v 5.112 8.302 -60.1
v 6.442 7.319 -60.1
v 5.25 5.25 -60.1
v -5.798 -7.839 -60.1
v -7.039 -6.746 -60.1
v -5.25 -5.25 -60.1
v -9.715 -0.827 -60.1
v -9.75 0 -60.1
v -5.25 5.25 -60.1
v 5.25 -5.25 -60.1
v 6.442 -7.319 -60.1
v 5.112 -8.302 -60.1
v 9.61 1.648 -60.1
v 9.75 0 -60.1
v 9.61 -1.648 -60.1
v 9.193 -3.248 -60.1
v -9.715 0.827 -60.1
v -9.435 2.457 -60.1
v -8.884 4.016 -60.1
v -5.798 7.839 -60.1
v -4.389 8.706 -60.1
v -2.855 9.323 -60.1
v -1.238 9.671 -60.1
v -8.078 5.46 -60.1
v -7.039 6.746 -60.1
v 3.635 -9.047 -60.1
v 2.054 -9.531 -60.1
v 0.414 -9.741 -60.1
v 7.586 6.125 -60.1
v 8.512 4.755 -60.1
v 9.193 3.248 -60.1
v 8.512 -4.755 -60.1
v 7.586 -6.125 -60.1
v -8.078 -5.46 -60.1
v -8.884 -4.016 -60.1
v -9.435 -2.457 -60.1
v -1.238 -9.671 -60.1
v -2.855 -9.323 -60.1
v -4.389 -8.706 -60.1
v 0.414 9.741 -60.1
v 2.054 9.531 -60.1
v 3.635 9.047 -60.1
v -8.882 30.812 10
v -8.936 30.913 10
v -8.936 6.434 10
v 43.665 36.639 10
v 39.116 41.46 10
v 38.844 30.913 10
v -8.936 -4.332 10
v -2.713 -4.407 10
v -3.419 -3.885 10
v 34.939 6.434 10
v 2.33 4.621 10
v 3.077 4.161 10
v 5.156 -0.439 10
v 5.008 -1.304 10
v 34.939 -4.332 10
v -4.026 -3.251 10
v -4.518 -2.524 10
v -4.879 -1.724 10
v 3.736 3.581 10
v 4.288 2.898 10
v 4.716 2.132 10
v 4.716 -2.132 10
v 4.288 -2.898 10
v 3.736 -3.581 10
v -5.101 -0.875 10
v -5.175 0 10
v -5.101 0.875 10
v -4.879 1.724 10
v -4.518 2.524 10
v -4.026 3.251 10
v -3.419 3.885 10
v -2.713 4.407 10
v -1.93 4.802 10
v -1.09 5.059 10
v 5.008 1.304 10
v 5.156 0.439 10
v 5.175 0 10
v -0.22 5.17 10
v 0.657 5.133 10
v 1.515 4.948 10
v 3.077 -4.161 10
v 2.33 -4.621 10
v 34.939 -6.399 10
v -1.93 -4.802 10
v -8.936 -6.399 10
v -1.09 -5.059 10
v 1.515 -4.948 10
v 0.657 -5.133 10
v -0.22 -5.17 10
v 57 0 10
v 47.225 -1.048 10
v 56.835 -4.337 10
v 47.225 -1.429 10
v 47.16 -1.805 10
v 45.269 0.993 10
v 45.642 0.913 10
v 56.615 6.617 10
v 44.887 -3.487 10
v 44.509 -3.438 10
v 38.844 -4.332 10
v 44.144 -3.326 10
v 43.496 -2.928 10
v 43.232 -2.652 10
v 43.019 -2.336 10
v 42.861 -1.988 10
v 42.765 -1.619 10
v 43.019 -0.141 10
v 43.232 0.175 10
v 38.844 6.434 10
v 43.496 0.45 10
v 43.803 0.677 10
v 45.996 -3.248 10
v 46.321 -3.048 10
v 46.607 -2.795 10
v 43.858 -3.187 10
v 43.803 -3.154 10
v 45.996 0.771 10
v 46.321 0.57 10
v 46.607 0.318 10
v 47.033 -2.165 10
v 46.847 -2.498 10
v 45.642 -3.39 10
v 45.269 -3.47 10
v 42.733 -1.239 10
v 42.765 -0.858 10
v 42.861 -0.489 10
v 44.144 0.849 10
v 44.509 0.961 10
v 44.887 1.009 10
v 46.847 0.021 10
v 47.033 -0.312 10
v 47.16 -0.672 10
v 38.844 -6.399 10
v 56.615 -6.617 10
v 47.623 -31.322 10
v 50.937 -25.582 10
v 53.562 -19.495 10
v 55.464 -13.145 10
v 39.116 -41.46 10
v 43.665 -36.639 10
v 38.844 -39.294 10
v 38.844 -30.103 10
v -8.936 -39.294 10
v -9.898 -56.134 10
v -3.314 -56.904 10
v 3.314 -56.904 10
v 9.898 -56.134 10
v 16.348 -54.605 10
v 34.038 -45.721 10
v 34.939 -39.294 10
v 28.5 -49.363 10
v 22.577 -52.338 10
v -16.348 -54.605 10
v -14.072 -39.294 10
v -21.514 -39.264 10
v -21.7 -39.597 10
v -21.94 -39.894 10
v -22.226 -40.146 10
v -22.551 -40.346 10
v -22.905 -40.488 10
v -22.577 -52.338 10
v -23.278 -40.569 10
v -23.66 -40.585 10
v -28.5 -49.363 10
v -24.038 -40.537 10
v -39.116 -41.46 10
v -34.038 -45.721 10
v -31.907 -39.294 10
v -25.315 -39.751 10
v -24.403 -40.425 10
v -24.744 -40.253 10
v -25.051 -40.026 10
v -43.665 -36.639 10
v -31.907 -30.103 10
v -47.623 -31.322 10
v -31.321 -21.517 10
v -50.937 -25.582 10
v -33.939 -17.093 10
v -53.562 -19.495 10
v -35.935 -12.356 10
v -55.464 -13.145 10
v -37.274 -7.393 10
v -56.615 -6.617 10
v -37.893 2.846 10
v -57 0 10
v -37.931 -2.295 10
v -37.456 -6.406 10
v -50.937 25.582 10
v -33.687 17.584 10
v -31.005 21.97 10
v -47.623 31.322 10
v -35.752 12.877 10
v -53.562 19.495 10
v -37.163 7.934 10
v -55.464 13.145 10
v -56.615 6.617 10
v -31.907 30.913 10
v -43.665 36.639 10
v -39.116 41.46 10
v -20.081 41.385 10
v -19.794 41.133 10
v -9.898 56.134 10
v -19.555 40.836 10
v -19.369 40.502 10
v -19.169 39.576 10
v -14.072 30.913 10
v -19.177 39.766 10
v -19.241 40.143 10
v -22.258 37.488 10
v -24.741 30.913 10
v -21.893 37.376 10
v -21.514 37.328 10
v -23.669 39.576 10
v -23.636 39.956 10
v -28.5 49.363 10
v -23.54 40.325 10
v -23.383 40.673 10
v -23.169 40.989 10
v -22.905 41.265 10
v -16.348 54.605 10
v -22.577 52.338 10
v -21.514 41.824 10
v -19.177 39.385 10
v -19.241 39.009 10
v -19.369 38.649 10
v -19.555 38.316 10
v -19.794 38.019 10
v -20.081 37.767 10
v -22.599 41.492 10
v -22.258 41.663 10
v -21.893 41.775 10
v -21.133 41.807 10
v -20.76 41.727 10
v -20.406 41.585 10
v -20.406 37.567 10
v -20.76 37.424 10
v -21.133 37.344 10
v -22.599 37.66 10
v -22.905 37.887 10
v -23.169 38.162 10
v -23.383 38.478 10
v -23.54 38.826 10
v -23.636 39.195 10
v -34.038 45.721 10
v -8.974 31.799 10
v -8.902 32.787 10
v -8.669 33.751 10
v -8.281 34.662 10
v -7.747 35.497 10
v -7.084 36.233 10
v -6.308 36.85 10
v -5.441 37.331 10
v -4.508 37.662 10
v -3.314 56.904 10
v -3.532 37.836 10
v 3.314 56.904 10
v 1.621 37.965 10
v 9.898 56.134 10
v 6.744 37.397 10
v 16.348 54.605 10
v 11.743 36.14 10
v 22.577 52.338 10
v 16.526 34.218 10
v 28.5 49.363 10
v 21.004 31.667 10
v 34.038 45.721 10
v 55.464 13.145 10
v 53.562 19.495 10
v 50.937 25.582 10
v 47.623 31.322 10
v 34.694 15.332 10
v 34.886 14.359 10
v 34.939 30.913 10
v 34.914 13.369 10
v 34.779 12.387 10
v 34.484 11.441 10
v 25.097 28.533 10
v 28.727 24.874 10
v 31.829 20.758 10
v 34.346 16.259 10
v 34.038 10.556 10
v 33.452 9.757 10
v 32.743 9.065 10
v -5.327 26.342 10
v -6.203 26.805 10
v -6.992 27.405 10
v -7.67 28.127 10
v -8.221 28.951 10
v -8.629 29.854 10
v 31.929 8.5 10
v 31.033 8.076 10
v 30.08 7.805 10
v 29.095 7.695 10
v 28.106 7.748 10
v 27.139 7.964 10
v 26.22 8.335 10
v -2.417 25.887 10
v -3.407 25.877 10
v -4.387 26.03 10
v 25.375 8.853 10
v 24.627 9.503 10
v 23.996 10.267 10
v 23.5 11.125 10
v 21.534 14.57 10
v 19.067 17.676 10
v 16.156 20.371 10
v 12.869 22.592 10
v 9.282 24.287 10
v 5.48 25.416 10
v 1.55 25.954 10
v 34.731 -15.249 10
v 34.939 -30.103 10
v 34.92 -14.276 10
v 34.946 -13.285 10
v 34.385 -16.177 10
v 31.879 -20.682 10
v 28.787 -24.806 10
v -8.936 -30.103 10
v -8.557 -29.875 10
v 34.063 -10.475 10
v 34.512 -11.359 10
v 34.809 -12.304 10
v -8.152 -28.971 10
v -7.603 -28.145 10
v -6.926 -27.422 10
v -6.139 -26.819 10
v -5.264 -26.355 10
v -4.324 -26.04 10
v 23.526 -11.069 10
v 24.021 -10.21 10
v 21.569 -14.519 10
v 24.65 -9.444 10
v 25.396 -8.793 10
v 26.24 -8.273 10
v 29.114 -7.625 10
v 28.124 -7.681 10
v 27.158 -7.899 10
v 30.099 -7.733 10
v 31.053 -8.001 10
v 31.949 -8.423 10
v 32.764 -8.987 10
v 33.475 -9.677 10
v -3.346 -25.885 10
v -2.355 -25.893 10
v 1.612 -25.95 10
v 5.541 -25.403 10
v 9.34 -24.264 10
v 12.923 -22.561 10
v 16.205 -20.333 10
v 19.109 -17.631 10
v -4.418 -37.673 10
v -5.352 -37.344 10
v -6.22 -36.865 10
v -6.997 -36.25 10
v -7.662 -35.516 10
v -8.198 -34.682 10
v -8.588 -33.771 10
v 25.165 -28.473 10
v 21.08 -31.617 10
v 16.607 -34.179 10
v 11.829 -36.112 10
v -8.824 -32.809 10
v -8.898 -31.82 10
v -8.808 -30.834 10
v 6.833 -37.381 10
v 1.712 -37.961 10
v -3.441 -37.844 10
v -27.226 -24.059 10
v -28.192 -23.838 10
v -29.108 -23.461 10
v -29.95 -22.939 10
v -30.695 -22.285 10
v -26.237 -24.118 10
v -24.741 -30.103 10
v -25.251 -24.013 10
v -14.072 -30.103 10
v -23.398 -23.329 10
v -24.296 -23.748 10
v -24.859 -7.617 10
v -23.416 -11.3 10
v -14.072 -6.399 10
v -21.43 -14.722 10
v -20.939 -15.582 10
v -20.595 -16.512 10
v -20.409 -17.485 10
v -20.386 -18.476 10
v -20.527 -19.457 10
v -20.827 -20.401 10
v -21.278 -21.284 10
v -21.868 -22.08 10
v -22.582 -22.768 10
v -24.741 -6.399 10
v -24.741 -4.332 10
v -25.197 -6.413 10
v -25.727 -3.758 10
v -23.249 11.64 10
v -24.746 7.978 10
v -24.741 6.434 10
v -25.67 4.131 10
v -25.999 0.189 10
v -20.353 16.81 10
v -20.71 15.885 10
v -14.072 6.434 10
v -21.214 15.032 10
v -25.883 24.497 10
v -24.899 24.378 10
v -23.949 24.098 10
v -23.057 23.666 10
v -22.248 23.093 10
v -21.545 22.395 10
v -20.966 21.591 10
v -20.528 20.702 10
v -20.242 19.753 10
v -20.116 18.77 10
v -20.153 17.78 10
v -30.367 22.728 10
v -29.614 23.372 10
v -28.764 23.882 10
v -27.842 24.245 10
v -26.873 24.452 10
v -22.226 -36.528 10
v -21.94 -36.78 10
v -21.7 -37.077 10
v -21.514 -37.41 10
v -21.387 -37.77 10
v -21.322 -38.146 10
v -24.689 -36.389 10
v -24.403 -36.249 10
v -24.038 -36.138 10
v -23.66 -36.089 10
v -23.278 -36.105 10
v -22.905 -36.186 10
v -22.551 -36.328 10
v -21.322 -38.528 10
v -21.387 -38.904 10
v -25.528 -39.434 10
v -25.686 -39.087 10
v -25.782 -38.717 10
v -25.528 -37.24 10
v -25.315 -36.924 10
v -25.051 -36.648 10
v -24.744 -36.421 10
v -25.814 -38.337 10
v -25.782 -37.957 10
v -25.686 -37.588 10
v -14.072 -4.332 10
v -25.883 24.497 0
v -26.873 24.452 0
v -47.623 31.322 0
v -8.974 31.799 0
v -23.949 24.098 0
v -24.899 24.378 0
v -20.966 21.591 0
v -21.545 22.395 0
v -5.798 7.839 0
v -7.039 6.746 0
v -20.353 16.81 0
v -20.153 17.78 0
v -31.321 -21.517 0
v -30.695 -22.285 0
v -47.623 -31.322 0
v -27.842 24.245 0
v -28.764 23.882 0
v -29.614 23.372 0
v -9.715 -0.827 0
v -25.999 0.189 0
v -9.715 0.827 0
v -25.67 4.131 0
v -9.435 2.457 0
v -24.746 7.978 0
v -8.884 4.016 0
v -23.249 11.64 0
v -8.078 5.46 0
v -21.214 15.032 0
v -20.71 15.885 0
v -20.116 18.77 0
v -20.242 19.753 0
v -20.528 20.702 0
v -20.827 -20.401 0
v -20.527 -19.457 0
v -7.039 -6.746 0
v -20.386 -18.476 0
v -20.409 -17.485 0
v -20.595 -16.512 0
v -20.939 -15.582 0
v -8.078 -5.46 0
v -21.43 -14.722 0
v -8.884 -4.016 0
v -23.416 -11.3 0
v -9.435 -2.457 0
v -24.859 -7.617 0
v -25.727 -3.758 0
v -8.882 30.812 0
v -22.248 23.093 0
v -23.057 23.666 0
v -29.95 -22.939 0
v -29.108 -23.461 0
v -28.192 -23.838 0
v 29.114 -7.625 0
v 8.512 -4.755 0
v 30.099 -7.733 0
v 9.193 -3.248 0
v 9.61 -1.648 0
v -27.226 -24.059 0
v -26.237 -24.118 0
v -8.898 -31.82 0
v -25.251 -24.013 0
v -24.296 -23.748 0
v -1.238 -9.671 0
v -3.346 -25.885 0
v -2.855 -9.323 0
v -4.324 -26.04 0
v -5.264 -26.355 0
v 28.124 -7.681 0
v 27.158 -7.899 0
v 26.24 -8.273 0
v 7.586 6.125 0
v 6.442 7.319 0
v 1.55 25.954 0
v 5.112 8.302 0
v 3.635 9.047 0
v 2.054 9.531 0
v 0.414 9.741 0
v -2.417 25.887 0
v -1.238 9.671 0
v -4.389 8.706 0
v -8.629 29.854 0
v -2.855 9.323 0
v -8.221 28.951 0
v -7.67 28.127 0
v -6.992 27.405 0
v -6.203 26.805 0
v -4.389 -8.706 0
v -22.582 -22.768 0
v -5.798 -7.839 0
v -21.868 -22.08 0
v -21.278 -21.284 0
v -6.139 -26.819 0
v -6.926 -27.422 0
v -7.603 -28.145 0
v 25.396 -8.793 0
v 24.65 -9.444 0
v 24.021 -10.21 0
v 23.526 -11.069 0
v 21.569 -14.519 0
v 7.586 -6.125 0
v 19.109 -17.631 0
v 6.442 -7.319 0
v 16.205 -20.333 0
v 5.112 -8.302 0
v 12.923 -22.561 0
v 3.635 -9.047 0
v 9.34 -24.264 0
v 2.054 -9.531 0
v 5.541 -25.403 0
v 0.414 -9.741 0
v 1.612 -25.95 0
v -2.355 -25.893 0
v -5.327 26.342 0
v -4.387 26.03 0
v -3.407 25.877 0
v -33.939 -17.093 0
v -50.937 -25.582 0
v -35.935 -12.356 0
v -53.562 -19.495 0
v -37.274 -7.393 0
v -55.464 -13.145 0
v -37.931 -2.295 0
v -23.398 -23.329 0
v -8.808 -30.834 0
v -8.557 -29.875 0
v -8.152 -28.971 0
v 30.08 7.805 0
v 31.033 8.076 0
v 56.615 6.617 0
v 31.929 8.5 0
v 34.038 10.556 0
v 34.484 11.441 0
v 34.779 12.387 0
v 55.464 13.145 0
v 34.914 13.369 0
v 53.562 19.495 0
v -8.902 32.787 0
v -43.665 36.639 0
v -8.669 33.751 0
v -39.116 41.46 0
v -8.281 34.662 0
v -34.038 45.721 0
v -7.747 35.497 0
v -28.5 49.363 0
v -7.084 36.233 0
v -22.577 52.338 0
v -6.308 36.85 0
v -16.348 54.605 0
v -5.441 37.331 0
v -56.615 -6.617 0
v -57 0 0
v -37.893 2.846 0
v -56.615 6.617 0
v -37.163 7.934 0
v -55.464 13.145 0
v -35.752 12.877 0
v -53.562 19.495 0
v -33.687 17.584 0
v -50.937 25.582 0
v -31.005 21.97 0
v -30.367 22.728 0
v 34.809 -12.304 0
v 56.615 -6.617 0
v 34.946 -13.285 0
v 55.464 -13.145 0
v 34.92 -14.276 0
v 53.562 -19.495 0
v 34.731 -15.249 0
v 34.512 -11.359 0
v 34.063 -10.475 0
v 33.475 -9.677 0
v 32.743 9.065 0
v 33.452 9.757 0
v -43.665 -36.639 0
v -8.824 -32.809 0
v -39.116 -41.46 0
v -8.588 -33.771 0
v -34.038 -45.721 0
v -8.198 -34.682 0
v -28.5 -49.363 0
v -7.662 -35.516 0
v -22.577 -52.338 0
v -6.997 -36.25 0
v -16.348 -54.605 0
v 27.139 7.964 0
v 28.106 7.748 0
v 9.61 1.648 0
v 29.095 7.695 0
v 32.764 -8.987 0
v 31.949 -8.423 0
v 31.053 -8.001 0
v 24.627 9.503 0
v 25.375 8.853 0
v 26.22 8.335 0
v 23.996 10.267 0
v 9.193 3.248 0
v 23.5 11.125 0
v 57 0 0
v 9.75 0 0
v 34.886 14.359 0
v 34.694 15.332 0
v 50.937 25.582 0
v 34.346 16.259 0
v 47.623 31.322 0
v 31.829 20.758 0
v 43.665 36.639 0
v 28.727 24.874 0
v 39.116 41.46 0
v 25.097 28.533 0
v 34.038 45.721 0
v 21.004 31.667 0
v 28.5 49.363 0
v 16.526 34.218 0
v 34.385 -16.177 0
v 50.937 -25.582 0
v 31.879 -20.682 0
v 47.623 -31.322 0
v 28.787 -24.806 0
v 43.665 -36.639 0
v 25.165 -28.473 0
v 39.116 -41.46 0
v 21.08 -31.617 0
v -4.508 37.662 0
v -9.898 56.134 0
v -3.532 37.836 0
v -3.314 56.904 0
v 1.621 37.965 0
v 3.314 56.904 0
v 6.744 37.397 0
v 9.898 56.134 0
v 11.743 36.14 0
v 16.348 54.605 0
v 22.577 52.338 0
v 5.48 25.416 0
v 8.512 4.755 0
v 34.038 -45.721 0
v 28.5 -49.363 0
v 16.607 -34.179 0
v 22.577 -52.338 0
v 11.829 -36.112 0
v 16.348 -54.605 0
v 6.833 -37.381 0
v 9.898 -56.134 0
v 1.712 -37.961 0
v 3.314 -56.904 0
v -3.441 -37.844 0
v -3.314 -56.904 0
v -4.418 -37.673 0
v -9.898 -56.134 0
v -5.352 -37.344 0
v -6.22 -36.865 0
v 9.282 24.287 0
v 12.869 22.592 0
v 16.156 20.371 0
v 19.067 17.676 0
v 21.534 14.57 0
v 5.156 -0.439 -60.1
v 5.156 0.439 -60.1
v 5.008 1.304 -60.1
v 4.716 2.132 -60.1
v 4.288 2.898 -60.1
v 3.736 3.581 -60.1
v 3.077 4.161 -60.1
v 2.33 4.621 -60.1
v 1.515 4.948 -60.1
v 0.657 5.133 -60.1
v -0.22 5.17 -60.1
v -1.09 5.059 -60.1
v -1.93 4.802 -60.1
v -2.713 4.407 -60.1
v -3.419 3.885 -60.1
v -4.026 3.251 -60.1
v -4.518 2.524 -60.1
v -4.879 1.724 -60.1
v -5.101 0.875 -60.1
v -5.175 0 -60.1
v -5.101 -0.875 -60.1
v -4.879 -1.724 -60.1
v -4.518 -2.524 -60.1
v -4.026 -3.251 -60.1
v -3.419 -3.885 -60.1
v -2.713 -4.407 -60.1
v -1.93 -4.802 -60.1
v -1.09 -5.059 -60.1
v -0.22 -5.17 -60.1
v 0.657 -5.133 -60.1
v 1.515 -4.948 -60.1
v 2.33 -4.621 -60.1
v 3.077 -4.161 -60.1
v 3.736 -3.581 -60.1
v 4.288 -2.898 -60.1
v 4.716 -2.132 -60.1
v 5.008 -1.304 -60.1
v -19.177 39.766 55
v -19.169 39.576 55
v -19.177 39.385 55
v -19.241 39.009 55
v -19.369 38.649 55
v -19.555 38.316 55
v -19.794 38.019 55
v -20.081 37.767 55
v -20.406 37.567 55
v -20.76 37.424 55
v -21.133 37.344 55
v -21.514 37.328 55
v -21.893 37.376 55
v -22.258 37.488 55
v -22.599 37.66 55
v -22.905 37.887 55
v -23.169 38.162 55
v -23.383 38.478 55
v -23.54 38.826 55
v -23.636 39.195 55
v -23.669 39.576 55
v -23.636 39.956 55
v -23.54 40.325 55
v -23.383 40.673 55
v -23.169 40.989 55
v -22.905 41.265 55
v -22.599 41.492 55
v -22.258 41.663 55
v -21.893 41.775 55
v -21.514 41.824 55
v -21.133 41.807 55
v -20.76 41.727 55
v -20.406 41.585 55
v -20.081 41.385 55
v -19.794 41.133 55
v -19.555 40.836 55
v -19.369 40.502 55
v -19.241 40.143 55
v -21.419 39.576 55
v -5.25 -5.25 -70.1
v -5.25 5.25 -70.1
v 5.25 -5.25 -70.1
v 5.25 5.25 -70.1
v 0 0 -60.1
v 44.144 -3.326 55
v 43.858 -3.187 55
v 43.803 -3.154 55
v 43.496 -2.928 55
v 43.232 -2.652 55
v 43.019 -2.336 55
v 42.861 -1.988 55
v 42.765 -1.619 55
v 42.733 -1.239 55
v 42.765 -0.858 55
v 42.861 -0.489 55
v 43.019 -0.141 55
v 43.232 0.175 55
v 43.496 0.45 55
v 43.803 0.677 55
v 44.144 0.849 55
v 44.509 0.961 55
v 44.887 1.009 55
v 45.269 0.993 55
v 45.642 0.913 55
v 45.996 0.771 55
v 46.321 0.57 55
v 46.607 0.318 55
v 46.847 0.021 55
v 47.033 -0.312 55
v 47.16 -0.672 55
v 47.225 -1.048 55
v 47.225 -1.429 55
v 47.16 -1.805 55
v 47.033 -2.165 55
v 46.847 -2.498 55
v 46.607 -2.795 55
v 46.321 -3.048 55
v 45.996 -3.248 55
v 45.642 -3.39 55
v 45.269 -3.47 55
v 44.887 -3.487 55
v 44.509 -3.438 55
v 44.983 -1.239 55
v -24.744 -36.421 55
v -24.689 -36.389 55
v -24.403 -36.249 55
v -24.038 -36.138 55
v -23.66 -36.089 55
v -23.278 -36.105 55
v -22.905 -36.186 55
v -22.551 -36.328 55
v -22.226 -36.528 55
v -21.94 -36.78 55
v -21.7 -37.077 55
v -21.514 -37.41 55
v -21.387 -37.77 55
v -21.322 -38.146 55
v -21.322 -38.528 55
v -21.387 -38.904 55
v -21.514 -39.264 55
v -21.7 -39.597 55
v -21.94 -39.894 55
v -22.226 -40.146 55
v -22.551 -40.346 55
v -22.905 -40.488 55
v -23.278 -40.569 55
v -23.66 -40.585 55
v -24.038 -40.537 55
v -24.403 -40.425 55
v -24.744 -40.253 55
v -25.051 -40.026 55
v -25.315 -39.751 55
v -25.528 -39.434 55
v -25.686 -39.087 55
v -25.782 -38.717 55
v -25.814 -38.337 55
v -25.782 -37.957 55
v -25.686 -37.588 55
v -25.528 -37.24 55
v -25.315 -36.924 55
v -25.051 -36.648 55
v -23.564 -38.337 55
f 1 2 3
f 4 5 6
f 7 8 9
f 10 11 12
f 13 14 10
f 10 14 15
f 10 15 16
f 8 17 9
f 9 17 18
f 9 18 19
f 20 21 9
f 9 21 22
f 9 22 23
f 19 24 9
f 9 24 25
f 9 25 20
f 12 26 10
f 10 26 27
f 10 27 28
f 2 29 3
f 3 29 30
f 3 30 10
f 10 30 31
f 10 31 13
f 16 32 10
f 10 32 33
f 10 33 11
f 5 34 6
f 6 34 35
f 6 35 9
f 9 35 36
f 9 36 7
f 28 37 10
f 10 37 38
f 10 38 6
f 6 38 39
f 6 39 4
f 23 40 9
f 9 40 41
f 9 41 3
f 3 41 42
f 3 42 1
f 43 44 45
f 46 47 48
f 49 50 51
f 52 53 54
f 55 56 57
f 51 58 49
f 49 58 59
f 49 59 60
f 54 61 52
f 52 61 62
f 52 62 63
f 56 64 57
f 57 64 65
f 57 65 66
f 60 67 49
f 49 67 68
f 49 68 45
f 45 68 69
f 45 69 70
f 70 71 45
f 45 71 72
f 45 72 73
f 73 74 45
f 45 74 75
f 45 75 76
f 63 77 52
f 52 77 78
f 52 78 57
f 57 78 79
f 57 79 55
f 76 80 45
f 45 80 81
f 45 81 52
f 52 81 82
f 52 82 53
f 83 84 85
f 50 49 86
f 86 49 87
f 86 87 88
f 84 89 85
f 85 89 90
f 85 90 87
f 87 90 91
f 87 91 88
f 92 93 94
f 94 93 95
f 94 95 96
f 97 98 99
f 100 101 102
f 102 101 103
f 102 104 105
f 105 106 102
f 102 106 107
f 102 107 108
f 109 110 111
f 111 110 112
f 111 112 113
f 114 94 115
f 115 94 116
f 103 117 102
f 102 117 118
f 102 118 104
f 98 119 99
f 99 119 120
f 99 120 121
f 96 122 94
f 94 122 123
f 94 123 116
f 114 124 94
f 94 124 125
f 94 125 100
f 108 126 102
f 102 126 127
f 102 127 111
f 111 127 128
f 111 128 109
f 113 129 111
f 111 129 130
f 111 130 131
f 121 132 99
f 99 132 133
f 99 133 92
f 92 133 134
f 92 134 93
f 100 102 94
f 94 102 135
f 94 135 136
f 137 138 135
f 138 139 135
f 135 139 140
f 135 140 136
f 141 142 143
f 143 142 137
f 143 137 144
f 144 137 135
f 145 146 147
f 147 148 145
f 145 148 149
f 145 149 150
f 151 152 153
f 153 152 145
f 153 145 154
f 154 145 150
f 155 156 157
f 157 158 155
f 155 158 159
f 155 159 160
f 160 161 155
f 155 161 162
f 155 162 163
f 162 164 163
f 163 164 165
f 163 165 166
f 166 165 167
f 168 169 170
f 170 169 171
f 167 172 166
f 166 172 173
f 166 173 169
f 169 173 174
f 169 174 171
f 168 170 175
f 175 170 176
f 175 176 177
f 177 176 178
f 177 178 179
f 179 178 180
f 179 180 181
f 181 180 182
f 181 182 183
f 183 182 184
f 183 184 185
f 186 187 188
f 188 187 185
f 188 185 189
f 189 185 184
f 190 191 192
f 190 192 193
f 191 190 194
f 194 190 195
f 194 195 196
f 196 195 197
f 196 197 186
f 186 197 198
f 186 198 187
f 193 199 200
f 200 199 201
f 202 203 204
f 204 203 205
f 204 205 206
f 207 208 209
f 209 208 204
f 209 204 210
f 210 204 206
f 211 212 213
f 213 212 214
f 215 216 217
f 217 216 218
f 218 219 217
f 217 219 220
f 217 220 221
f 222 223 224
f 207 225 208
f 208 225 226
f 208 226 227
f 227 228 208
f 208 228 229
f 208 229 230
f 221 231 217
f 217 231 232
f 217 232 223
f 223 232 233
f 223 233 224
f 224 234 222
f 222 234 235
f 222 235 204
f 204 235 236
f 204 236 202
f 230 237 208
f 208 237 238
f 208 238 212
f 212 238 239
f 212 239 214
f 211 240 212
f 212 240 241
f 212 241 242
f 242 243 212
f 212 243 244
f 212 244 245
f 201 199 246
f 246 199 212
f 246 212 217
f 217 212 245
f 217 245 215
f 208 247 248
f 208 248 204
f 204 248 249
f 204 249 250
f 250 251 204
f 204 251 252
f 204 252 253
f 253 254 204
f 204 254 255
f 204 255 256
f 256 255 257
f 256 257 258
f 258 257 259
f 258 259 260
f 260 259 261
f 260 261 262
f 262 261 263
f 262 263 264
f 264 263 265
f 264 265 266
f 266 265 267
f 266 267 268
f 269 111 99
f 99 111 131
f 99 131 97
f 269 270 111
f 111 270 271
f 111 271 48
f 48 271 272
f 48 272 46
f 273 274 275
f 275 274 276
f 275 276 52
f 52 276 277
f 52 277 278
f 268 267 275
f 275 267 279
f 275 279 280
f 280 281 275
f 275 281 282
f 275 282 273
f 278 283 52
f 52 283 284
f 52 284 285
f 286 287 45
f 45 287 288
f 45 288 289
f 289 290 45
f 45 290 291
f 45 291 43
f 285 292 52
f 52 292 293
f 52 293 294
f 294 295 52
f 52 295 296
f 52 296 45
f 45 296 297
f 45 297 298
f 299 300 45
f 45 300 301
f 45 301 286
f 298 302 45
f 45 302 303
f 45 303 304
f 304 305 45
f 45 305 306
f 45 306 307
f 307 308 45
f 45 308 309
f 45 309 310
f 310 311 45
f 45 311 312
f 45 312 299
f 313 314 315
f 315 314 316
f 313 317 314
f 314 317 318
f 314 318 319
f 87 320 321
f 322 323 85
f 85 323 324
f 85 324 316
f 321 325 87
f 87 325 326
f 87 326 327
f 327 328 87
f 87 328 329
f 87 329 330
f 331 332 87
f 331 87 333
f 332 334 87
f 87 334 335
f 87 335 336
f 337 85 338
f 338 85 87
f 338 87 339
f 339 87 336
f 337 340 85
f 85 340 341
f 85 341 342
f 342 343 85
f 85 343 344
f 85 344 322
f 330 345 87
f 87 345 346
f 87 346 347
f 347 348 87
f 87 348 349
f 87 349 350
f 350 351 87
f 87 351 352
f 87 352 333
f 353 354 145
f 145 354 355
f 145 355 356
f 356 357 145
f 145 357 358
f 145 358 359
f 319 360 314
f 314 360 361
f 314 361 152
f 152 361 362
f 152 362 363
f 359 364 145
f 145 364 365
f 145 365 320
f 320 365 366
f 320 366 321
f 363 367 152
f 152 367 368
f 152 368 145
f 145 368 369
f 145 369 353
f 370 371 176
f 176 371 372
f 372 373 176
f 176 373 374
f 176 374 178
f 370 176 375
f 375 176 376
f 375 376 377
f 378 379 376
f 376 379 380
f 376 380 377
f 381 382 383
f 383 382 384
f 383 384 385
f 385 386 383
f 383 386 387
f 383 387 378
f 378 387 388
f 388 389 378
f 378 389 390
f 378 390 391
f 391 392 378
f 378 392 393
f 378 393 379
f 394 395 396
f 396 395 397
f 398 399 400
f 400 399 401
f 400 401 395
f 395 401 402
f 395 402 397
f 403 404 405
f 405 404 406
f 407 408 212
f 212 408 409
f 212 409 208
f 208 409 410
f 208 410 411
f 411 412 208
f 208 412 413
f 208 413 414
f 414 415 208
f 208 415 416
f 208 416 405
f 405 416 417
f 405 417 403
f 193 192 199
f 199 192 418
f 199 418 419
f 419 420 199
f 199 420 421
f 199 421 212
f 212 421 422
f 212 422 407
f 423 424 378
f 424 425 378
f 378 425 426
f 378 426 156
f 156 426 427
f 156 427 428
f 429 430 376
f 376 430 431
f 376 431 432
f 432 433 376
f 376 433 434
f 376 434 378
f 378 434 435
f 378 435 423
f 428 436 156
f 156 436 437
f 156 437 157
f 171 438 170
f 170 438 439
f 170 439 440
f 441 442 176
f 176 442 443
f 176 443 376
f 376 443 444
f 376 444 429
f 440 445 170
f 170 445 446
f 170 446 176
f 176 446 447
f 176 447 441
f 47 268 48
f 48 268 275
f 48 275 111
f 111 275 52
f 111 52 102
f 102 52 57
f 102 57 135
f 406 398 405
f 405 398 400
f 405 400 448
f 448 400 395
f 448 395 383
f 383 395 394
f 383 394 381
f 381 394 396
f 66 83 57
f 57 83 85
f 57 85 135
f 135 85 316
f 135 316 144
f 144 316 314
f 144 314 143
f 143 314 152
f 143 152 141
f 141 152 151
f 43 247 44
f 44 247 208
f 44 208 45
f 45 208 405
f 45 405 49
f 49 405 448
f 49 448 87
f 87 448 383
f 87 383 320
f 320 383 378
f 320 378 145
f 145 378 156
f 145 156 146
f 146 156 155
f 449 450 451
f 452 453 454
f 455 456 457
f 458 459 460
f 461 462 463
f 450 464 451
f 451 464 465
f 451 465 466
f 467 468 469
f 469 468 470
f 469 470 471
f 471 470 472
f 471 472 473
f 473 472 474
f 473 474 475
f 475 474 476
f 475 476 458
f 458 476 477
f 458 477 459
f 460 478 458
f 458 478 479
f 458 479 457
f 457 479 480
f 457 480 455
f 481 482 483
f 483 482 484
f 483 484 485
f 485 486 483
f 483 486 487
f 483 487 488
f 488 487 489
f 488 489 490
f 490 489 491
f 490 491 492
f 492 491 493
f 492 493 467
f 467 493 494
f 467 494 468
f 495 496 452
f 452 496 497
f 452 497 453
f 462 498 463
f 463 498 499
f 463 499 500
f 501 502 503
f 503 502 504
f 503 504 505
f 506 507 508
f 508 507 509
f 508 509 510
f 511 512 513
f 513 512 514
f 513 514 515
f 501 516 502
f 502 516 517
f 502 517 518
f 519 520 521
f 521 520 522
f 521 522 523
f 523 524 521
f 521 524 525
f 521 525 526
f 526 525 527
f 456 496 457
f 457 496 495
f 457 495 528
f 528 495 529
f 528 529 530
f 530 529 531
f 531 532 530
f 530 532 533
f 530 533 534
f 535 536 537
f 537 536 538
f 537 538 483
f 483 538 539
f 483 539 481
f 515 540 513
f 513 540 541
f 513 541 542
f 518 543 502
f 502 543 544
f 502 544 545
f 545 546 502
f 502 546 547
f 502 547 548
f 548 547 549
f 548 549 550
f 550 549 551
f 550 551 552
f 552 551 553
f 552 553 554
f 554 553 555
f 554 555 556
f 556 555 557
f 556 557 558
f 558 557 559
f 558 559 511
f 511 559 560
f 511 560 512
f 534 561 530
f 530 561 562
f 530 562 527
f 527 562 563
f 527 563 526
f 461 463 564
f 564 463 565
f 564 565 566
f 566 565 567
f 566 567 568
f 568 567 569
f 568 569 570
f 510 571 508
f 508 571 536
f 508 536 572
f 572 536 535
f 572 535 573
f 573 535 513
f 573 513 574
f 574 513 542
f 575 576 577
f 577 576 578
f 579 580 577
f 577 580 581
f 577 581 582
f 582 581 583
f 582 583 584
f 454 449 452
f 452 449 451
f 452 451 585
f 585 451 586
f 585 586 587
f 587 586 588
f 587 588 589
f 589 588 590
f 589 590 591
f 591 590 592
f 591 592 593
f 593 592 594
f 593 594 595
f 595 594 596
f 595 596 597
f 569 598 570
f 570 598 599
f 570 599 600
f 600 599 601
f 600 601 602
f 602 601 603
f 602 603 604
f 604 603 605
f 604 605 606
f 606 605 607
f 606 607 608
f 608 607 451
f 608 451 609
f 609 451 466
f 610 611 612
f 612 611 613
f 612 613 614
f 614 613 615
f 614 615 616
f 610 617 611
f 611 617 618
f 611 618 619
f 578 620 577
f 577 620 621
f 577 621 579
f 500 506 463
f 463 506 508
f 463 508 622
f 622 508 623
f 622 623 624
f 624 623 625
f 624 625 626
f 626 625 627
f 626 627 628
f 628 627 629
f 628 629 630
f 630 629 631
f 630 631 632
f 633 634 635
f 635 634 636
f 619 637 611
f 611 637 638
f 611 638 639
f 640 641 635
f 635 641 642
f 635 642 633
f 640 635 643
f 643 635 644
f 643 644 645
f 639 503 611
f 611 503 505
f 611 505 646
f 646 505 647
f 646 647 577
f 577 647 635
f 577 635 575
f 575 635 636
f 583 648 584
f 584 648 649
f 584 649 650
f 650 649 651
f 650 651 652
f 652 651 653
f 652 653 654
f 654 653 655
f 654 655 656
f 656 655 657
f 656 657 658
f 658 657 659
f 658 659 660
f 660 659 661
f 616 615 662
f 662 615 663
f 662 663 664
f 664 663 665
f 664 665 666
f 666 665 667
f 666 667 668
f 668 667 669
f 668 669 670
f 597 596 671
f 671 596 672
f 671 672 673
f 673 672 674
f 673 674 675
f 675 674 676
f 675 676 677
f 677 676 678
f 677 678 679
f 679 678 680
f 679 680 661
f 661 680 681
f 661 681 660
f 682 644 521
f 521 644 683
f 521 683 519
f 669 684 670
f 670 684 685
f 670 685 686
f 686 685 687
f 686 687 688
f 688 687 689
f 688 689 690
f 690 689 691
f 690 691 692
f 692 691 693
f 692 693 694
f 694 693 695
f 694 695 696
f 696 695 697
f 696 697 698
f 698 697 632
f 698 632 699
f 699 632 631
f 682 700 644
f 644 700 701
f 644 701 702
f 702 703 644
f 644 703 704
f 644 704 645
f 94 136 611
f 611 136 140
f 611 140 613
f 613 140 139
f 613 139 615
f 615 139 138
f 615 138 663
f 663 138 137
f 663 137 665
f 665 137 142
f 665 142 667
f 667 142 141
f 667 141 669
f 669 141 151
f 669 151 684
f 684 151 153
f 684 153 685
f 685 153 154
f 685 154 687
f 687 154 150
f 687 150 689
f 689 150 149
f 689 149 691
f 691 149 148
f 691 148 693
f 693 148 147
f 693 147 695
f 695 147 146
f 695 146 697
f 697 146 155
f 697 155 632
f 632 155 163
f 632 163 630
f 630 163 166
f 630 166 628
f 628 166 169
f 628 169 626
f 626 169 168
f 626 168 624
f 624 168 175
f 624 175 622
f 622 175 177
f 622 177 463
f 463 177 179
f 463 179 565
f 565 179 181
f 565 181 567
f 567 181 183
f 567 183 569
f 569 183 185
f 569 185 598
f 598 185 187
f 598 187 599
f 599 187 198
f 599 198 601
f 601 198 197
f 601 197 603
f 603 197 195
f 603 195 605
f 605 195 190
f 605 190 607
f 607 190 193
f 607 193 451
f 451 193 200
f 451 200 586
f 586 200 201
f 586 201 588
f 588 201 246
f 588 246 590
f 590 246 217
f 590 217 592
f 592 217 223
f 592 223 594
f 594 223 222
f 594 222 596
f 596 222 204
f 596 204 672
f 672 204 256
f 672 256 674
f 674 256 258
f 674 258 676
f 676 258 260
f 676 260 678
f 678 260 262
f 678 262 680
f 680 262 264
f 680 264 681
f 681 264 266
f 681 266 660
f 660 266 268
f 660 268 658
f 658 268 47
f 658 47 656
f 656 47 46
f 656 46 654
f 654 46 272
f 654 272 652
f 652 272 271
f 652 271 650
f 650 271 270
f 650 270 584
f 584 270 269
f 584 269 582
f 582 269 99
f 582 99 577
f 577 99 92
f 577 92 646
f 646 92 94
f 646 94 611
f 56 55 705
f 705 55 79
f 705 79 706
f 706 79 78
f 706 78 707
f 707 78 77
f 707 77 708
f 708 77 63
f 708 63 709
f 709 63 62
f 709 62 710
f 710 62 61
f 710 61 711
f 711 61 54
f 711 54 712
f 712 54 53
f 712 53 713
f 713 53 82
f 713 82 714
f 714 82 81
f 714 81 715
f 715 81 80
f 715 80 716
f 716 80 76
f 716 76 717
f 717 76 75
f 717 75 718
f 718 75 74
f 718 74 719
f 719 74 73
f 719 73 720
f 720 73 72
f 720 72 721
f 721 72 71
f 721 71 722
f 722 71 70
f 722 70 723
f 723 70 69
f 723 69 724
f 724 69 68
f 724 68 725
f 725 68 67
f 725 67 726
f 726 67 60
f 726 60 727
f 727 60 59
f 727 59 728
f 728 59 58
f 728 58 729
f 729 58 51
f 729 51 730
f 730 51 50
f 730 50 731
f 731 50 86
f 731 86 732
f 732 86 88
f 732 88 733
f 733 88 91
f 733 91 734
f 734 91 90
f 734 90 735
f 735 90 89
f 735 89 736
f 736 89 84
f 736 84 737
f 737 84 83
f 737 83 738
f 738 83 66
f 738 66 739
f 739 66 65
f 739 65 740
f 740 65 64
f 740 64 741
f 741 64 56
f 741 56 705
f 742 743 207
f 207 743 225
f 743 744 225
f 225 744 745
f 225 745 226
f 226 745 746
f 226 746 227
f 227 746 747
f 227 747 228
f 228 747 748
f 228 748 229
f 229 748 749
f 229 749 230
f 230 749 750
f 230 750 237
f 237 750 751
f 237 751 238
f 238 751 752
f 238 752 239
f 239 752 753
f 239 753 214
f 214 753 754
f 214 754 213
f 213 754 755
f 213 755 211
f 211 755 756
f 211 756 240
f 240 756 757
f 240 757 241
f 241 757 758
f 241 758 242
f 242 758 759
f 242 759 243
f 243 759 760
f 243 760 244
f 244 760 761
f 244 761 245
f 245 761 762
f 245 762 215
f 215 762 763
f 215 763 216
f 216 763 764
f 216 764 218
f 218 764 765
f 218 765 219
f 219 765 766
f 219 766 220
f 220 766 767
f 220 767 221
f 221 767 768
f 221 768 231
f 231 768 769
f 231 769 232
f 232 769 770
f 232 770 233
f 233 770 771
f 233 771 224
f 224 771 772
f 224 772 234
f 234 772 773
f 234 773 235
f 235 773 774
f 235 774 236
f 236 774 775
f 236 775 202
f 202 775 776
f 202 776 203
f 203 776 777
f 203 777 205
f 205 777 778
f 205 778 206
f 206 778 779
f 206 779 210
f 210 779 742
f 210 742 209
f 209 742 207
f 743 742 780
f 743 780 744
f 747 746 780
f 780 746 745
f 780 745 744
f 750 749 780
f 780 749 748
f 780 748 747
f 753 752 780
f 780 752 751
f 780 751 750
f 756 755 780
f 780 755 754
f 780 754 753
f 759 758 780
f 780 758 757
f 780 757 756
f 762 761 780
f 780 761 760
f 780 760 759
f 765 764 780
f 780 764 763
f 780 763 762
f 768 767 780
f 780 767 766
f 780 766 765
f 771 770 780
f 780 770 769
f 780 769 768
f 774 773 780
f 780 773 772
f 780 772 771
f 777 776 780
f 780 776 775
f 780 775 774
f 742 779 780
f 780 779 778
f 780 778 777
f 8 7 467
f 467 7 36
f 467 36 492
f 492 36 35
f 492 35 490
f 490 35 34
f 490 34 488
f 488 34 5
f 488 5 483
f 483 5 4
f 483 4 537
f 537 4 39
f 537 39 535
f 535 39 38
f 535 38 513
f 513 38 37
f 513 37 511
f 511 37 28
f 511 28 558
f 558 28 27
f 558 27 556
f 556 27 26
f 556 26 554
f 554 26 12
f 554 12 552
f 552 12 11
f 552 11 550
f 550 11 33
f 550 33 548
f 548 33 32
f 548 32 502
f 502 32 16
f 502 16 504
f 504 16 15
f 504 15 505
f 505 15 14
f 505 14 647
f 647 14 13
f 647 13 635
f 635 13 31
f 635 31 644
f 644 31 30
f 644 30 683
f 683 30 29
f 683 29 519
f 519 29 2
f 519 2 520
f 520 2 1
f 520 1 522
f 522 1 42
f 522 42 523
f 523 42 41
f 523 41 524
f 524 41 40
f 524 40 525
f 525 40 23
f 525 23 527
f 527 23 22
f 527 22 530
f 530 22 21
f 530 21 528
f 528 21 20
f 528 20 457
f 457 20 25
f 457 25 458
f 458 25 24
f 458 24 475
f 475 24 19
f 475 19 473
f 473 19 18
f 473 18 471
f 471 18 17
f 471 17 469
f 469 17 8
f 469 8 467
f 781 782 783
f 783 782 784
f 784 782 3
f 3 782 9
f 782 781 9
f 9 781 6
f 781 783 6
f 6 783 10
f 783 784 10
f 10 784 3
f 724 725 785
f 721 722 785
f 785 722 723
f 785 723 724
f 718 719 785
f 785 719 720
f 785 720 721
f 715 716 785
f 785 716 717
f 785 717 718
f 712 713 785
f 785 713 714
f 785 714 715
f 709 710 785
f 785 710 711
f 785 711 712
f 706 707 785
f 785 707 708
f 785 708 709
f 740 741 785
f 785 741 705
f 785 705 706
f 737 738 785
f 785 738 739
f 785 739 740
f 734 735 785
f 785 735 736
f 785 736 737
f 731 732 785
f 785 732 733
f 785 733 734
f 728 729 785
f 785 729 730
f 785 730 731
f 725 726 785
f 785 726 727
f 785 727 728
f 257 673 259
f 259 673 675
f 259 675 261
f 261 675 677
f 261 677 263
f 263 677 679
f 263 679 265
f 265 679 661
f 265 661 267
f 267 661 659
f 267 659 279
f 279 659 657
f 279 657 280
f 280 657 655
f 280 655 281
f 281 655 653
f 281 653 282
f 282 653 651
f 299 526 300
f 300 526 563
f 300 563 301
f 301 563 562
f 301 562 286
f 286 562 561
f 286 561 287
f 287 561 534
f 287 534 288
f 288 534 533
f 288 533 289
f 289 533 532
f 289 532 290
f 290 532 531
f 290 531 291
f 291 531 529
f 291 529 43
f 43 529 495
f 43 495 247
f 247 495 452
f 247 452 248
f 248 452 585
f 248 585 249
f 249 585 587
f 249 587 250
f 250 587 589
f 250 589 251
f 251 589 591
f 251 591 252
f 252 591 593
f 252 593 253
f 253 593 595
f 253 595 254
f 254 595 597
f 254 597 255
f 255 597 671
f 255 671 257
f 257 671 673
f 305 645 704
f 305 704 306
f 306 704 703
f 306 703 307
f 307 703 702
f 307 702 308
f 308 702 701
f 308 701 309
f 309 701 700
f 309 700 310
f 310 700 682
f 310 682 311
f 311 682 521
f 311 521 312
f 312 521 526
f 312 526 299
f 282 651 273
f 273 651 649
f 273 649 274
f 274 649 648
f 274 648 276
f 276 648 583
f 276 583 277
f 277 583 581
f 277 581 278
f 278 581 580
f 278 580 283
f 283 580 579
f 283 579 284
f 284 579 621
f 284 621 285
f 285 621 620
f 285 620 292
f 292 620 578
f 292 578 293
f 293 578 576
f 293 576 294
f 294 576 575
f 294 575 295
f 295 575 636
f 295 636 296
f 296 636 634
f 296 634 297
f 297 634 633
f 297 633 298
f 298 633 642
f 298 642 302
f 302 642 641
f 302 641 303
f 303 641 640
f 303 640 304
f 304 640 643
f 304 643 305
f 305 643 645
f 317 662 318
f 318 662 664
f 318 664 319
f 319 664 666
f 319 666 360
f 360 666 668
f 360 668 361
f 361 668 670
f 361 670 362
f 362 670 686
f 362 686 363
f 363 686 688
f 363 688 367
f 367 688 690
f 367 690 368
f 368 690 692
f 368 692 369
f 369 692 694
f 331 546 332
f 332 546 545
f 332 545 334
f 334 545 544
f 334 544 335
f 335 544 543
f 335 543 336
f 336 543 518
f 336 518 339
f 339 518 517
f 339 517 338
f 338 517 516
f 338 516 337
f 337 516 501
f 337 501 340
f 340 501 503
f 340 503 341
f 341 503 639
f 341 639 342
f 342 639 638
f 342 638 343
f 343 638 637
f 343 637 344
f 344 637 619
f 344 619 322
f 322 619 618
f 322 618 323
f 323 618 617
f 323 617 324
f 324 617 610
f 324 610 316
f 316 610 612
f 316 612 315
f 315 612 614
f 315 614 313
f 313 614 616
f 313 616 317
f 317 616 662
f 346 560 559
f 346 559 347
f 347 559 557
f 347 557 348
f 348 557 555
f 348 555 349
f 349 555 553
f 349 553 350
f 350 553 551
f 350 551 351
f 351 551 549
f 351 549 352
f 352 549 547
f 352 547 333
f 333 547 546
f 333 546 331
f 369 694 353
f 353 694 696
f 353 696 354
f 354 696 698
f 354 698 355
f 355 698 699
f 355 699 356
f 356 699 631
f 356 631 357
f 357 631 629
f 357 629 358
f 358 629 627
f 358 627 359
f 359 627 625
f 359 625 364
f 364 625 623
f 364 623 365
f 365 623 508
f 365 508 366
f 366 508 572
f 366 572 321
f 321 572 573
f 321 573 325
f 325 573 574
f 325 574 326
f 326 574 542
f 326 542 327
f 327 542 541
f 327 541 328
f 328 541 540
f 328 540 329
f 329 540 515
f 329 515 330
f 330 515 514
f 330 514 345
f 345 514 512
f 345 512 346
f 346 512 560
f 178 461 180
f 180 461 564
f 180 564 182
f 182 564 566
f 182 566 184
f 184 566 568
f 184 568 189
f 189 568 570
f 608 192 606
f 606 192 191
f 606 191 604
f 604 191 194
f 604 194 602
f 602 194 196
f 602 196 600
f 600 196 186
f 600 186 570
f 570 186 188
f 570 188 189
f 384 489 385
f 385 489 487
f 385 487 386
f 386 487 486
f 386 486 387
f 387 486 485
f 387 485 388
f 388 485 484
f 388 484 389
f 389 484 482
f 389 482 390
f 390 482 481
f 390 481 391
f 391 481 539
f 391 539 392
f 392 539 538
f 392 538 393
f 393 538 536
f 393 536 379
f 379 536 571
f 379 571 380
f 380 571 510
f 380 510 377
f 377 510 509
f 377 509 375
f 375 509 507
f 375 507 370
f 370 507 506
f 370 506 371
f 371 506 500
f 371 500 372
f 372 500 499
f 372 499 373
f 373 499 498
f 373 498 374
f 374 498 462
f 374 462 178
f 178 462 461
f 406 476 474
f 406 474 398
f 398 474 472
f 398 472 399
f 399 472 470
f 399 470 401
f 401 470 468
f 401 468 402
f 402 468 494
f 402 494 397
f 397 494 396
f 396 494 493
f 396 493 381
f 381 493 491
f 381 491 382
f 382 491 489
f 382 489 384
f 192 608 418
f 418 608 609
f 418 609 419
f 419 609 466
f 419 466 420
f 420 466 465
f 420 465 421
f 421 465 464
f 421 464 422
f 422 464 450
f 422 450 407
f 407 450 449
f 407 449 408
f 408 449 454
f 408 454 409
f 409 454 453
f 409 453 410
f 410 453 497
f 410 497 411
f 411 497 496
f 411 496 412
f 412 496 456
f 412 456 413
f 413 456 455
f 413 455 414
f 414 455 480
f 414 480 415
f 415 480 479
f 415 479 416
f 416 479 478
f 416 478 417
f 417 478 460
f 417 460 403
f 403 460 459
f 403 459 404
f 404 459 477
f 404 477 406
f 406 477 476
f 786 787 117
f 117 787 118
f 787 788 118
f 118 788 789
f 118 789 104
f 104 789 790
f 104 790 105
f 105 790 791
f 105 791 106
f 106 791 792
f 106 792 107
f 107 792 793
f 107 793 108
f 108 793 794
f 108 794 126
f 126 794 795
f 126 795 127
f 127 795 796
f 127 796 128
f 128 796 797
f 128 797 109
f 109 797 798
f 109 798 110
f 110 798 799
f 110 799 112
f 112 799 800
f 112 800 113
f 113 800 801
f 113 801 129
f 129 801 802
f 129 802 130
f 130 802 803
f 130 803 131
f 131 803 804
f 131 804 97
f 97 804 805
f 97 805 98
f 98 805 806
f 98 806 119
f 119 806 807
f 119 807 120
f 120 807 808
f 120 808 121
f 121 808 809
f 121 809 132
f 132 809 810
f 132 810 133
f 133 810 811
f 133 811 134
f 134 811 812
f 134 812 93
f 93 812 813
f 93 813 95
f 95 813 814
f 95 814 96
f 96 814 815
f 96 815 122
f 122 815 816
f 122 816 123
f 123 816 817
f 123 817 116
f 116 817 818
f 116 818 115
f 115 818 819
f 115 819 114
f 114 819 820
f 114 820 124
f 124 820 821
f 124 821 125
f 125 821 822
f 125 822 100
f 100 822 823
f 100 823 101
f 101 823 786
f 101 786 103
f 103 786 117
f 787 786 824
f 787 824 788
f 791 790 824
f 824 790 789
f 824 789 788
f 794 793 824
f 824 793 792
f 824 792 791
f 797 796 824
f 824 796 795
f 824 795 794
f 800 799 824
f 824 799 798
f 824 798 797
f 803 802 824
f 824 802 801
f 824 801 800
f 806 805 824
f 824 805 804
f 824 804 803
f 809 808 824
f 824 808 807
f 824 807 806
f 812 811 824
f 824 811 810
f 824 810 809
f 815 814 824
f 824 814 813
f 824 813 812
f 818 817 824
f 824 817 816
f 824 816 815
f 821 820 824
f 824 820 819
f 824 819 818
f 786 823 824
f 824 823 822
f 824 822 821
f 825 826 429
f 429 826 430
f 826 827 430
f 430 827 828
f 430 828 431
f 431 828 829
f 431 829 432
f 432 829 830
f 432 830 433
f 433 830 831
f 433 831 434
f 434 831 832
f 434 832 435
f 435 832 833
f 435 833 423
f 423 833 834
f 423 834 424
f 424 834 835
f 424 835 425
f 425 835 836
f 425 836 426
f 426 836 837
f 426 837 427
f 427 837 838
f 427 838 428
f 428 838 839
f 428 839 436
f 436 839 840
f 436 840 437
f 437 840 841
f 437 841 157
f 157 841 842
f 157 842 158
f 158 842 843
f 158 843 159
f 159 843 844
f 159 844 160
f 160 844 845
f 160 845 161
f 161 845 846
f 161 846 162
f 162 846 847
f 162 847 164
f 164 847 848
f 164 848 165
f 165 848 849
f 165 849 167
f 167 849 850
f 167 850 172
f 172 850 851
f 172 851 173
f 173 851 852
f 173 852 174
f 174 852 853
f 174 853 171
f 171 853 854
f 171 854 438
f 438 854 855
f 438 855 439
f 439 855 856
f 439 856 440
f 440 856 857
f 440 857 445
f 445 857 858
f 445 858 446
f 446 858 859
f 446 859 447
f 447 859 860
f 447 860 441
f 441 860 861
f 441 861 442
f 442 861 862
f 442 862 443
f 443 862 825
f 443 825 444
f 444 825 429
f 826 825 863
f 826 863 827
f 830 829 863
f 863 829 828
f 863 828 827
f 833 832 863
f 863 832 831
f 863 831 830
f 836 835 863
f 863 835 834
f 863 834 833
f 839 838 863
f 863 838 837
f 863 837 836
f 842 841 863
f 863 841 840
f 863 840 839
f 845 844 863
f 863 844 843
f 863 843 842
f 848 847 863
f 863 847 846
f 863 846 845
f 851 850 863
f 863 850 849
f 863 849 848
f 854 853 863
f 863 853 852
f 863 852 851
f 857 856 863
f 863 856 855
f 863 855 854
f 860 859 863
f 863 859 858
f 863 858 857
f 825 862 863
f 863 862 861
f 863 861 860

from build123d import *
from build123d.topology import SkipClean

# Parameters (mm, degrees)
SKETCH1_R           = 57
SKETCH1_R_2         = 5.175
BOSS_EXTRUDE1_DEPTH = 10
SKETCH3_R           = 2.25
BOSS_EXTRUDE2_DEPTH = 45
BOSS_EXTRUDE3_START = 60.1
SKETCH4_R           = 9.75
SKETCH4_R_2         = 5.175
BOSS_EXTRUDE3_DEPTH = 60.1
SKETCH5_W           = 10.5
SKETCH5_H           = 10.5
BOSS_EXTRUDE4_DEPTH = 10
CUT_EXTRUDE1_DEPTH  = 10
CIRPATTERN1_COUNT   = 3


with BuildPart() as part:
    # Sketch1 → Boss-Extrude1 (new body)
    with BuildSketch(Plane(origin=(0, 0, 0), x_dir=(0, 1, 0), z_dir=(0, 0, 1))):
        Circle(SKETCH1_R)
        Circle(SKETCH1_R_2, mode=Mode.SUBTRACT)
    extrude(amount=BOSS_EXTRUDE1_DEPTH)

    # Sketch3 → Boss-Extrude2 (add)
    with BuildSketch(Plane.XY.offset(10)):
        with Locations((-21.418860984, 39.575654059)):
            Circle(SKETCH3_R)
    boss_extrude2 = extrude(amount=BOSS_EXTRUDE2_DEPTH)

    # Sketch4 → Boss-Extrude3 (add)
    with SkipClean():  # the faces are left unmerged after this step: merging them gives an invalid solid
        with BuildSketch(Plane(origin=(0, 0, 0), x_dir=(-1, 0, 0), z_dir=(0, 0, -1)).offset(BOSS_EXTRUDE3_START)):
            Circle(SKETCH4_R)
            Circle(SKETCH4_R_2, mode=Mode.SUBTRACT)
        extrude(amount=-BOSS_EXTRUDE3_DEPTH)

    # Sketch5 → Boss-Extrude4 (add)
    with SkipClean():  # the faces are left unmerged after this step: merging them gives an invalid solid
        with BuildSketch(Plane(origin=(0, 0, -60.1), x_dir=(-1, 0, 0), z_dir=(0, 0, -1))):
            Rectangle(SKETCH5_W, SKETCH5_H)
        extrude(amount=BOSS_EXTRUDE4_DEPTH)

    # Sketch6 → Cut-Extrude1 (cut)
    with SkipClean():  # the faces are left unmerged after this step: merging them gives an invalid solid
        with BuildSketch(Plane(origin=(0, 0, 0), x_dir=(-1, 0, 0), z_dir=(0, 0, -1))):
            with BuildLine():
                ThreePointArc((-23.526269879, -11.068632508), (-31.509708891, -8.193793114), (-34.384548284, -16.177232126))
                ThreePointArc((-34.384548284, -16.177232126), (-18.887293866, -32.973779438), (3.441417522, -37.843845542))
                ThreePointArc((3.441417522, -37.843845542), (8.873379841, -31.325119796), (2.354654094, -25.893157476))
                ThreePointArc((2.354654094, -25.893157476), (-12.922885277, -22.561006984), (-23.526269879, -11.068632508))
            make_face()
            with BuildLine():
                ThreePointArc((2.41657911, 25.887451505), (8.948278483, 31.303806673), (3.531923315, 37.835506045))
                ThreePointArc((3.531923315, 37.835506045), (-18.808372522, 33.018860112), (-34.345756916, 16.259427476))
                ThreePointArc((-34.345756916, 16.259427476), (-31.490020689, 8.269135204), (-23.499728416, 11.124871431))
                ThreePointArc((-23.499728416, 11.124871431), (-12.868886462, 22.591851656), (2.41657911, 25.887451505))
            make_face()
            with BuildLine():
                ThreePointArc((21.430343191, -14.722105512), (22.978398041, -23.064978289), (31.321270818, -21.51692344))
                ThreePointArc((31.321270818, -21.51692344), (37.99899628, 0.276191416), (31.005191486, 21.969936298))
                ThreePointArc((31.005191486, 21.969936298), (22.640697625, 23.396555538), (21.214078385, 15.032061678))
                ThreePointArc((21.214078385, 15.032061678), (25.999313244, 0.188973074), (21.430343191, -14.722105512))
            make_face()
        extrude(amount=-CUT_EXTRUDE1_DEPTH, mode=Mode.SUBTRACT)

    # CirPattern1: Boss-Extrude2 ×3 about axis
    with SkipClean():  # the faces are left unmerged after this step: merging them gives an invalid solid
        cirpattern1_axis = Axis((0, 0, -60.1), (0, 0, 1))
        for i in range(1, CIRPATTERN1_COUNT):
            add(boss_extrude2.rotate(cirpattern1_axis, i * 360 / CIRPATTERN1_COUNT))


solid = part.part
